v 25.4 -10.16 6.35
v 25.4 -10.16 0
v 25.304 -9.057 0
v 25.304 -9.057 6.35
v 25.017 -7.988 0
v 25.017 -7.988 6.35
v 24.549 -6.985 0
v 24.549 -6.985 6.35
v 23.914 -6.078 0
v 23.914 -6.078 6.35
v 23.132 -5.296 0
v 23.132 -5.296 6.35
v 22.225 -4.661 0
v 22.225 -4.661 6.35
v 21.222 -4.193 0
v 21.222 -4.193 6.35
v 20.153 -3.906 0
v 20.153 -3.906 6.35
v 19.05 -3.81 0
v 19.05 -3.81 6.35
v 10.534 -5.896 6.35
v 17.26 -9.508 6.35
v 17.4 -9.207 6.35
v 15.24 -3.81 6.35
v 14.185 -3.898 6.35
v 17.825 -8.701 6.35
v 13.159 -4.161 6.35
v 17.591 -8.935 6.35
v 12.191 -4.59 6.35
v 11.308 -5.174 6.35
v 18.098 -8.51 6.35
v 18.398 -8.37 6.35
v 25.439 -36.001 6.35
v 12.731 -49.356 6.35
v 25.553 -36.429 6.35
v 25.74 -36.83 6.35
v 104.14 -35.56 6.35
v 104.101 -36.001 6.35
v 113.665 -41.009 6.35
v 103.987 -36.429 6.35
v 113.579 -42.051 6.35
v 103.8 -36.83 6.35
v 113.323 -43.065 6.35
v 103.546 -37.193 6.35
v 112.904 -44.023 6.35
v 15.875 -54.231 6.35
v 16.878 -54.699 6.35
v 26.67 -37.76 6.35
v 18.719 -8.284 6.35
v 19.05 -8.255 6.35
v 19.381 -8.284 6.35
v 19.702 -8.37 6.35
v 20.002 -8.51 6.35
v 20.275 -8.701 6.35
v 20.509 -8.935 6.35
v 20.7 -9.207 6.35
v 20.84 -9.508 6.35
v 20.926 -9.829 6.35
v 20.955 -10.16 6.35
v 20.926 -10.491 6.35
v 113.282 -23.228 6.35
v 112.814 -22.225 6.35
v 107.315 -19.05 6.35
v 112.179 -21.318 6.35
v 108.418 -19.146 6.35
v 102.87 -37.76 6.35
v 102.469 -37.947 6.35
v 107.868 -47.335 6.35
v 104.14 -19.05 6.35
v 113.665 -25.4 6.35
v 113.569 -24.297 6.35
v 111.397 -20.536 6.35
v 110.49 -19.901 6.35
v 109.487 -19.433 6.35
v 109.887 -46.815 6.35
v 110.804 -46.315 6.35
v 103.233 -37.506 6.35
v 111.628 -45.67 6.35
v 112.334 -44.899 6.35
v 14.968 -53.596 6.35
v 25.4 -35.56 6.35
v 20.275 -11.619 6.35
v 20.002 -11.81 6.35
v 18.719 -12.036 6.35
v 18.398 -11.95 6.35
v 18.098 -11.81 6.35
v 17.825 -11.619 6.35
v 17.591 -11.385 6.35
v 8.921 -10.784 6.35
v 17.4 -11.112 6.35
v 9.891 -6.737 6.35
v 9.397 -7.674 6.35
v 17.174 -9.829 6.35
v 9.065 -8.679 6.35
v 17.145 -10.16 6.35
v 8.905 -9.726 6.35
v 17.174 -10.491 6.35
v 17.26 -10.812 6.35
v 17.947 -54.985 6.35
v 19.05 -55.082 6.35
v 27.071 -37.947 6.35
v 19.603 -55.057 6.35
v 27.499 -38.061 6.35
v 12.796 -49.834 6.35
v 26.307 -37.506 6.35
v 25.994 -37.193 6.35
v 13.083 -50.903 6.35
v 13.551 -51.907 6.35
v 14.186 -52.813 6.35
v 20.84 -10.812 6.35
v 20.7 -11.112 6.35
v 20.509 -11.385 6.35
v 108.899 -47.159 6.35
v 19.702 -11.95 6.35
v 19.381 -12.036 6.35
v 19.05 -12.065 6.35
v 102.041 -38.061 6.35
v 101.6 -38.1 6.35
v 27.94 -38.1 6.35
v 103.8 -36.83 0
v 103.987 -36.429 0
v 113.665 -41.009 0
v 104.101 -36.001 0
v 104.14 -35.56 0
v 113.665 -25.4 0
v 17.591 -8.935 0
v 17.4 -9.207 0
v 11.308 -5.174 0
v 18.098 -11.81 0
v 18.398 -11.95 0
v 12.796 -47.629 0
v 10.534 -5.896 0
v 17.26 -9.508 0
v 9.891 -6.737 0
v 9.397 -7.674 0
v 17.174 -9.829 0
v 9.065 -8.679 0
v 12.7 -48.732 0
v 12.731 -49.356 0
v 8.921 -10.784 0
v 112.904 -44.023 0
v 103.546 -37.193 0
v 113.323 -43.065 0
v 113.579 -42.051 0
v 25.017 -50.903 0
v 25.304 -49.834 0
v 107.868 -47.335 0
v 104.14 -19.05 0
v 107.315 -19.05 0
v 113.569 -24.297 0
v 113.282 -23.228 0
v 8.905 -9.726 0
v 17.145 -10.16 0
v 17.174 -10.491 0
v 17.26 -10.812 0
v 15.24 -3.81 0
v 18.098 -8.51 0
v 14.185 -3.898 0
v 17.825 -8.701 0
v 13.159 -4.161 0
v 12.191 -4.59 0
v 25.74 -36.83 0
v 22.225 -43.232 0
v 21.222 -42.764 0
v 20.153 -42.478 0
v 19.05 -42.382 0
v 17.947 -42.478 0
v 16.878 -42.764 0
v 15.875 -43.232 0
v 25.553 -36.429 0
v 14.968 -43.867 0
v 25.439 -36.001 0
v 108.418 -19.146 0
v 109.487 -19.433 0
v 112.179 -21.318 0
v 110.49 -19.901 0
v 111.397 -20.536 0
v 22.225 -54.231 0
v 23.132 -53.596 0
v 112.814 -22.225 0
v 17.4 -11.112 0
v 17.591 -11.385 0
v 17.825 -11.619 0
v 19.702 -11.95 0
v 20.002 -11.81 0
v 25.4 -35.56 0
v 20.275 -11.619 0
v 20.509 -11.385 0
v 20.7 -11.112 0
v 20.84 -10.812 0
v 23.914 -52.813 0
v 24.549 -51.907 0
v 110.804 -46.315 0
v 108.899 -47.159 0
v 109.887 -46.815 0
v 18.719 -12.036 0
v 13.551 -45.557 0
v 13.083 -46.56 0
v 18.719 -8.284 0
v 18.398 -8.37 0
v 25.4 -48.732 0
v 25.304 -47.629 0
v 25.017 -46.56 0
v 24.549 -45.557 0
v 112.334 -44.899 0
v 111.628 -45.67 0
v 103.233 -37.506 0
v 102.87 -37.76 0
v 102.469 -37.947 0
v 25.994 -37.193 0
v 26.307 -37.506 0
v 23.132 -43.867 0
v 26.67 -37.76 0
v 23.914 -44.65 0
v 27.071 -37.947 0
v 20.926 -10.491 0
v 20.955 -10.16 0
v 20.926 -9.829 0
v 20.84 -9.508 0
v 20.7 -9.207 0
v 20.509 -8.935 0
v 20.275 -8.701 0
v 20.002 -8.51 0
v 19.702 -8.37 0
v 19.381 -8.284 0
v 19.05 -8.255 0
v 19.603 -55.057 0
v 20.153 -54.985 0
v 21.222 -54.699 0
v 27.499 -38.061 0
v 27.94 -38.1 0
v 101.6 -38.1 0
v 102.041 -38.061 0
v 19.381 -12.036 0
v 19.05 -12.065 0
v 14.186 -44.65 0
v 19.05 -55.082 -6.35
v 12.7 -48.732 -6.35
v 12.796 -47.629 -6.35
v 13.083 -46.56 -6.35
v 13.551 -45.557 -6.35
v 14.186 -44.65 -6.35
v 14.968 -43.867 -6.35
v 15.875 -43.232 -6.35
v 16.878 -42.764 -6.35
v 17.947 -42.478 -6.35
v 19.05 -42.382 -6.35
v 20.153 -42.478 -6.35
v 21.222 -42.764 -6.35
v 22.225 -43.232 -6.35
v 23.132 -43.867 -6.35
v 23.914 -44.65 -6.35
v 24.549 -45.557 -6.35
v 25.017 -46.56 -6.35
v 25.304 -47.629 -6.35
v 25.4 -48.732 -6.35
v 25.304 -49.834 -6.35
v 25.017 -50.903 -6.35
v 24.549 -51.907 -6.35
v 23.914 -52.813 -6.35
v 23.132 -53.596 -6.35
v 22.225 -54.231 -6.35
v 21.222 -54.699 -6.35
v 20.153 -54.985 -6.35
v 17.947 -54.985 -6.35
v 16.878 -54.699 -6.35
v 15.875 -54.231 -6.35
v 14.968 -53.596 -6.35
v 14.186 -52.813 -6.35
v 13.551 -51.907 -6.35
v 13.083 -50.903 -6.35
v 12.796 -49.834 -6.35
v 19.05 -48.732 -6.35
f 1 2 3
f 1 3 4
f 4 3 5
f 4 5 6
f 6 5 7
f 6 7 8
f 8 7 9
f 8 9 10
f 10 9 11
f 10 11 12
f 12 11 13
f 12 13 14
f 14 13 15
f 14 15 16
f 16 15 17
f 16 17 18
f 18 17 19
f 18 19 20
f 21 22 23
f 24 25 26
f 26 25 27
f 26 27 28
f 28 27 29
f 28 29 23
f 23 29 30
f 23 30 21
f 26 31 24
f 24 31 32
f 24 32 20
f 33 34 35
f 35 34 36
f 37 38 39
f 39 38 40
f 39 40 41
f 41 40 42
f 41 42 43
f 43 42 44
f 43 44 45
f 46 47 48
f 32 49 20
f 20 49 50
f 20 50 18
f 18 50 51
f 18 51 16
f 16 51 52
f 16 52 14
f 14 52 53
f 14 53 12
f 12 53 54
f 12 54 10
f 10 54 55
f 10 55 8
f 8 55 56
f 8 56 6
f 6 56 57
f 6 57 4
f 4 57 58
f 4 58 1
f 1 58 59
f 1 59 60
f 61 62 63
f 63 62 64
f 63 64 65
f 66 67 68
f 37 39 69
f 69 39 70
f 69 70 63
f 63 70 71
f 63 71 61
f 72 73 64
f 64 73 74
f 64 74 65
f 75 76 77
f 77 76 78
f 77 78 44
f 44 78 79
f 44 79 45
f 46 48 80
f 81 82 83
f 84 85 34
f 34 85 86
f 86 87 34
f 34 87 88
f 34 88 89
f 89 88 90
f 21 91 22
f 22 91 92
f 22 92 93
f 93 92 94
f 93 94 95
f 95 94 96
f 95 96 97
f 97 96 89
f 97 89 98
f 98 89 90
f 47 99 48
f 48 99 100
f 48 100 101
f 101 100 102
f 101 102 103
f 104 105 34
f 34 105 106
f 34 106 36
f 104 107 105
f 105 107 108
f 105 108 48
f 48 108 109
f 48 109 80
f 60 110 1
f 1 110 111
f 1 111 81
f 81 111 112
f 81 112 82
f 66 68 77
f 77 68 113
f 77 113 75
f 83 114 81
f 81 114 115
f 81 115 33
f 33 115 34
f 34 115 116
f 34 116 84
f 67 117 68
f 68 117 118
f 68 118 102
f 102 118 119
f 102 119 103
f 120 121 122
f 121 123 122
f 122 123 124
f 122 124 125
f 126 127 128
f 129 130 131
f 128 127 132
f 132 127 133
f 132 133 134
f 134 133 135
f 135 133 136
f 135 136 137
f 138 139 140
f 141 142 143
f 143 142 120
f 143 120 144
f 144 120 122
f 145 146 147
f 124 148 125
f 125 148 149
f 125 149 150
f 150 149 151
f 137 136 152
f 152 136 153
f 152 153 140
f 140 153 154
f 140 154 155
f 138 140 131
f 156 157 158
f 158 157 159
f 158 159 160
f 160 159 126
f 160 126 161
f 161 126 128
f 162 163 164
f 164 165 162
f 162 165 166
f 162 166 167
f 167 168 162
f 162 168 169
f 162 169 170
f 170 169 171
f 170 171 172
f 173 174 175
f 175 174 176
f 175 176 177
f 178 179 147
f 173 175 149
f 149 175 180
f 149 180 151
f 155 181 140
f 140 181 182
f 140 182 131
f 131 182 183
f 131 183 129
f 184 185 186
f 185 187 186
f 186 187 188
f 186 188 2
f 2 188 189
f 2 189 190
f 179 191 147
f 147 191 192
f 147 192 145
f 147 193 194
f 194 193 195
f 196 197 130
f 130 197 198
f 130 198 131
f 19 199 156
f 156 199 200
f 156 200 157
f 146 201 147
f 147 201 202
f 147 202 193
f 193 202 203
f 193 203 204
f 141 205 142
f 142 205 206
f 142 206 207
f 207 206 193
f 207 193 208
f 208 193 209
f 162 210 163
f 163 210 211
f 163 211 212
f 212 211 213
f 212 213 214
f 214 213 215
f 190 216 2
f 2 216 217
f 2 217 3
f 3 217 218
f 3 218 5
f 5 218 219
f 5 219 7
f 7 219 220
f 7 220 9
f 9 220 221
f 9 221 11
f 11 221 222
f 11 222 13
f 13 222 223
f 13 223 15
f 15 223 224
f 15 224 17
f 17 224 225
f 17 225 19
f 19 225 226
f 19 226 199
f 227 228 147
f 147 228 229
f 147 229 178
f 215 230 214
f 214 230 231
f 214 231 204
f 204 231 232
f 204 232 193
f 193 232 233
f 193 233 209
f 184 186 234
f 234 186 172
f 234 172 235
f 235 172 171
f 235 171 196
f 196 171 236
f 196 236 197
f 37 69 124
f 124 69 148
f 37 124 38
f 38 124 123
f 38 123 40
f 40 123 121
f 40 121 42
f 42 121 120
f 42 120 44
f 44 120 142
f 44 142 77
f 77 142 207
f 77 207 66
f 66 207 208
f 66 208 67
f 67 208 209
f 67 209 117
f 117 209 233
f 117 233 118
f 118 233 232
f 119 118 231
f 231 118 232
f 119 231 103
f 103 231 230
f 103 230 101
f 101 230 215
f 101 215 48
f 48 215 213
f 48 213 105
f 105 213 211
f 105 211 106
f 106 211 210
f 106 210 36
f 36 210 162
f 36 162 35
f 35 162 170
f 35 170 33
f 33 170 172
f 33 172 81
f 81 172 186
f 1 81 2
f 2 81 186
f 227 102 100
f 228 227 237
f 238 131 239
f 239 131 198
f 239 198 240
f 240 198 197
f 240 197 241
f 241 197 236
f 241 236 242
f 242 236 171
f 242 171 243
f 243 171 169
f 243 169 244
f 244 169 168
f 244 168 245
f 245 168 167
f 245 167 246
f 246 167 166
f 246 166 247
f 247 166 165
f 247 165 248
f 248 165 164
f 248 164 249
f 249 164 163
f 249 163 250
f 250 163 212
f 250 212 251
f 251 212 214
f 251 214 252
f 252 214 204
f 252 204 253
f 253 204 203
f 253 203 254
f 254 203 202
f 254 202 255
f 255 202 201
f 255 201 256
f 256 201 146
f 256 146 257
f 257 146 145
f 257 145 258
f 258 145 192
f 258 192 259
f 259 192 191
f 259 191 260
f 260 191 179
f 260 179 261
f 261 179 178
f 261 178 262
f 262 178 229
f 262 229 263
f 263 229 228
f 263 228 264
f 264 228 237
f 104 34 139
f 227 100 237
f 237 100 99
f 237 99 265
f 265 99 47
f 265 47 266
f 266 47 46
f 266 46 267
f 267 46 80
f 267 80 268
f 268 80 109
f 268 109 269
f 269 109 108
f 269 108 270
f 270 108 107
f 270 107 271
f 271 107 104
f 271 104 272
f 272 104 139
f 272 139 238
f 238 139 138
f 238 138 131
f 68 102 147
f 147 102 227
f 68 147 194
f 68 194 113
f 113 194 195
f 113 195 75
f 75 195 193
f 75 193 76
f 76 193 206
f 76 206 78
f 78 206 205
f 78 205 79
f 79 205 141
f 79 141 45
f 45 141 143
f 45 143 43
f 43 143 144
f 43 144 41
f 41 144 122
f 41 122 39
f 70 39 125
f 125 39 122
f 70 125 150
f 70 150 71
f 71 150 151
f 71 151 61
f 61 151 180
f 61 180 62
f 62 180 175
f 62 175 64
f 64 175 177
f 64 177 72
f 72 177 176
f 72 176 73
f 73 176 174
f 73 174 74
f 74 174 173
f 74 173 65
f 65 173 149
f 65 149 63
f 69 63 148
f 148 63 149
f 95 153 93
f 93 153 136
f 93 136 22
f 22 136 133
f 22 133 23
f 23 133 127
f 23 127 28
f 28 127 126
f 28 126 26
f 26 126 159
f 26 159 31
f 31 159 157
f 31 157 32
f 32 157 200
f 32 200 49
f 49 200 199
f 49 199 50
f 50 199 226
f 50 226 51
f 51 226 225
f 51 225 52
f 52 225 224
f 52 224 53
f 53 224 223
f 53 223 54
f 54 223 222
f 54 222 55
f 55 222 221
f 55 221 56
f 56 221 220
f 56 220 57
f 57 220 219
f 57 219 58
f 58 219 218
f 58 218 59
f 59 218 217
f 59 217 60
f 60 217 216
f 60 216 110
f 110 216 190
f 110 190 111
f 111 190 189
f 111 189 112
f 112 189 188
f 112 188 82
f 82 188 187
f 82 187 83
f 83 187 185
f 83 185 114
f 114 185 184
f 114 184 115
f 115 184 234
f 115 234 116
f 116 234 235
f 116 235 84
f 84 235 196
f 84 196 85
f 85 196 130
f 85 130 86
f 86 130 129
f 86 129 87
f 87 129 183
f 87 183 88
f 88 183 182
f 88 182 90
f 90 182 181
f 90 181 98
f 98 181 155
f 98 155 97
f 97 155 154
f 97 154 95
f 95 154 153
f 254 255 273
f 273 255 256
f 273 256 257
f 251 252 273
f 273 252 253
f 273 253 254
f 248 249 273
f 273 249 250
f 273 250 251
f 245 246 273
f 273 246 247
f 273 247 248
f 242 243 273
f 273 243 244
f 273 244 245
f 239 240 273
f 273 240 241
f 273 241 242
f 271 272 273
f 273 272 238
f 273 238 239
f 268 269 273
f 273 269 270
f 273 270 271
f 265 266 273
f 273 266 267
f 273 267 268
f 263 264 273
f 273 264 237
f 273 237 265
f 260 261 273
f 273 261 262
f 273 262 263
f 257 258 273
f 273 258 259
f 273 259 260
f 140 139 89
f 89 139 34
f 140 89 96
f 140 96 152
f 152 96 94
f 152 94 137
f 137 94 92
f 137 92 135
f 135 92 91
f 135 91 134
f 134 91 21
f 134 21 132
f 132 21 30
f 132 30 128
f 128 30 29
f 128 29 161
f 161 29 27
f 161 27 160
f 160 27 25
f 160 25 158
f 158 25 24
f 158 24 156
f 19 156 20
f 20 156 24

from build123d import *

# Parameters (mm, degrees)
SKETCH1_R           = 1.905
BOSS_EXTRUDE1_DEPTH = 6.35
SKETCH3_R           = 6.35
BOSS_EXTRUDE2_DEPTH = 12.7
BOSS_EXTRUDE3_DEPTH = 6.35


with BuildPart() as part:
    # Sketch1 → Boss-Extrude1 (new body)
    with BuildSketch(Plane.XY):
        with BuildLine():
            Line((12.7, -10.16), (12.7, -48.731538364))
            ThreePointArc((12.7, -48.731538364), (14.760002182, -53.413249452), (19.603438966, -55.057374697))
            Line((19.603438966, -55.057374697), (107.868438966, -47.33518781))
            ThreePointArc((107.868438966, -47.33518781), (111.996711089, -45.299349296), (113.665, -41.009351478))
            Line((113.665, -41.009351478), (113.665, -25.4))
            ThreePointArc((113.665, -25.4), (111.805128061, -20.909871939), (107.315, -19.05))
            Line((107.315, -19.05), (104.14, -19.05))
            Line((104.14, -19.05), (104.14, -35.56))
            ThreePointArc((104.14, -35.56), (103.396051224, -37.356051224), (101.6, -38.1))
            Line((101.6, -38.1), (27.94, -38.1))
            ThreePointArc((27.94, -38.1), (26.143948776, -37.356051224), (25.4, -35.56))
            Line((25.4, -35.56), (25.4, -10.16))
            ThreePointArc((25.4, -10.16), (23.540128061, -5.669871939), (19.05, -3.81))
            ThreePointArc((19.05, -3.81), (14.559871939, -5.669871939), (12.7, -10.16))
        make_face()
        with Locations((19.05, -10.16)):
            Circle(SKETCH1_R, mode=Mode.SUBTRACT)
    extrude(amount=BOSS_EXTRUDE1_DEPTH)

    # Sketch3 → Boss-Extrude2 (add)
    with BuildSketch(Plane.XY.offset(6.35)):
        with Locations(Location((19.05, -48.731538364, 0), (0, 0, 180))):
            Circle(SKETCH3_R)
    extrude(amount=-BOSS_EXTRUDE2_DEPTH)

    # Sketch6 → Boss-Extrude3 (add)
    with BuildSketch(Plane.XY.offset(6.35)):
        with BuildLine():
            Line((12.730753591, -49.355737704), (8.920753591, -10.784199341))
            ThreePointArc((8.920753591, -10.784199341), (10.534356271, -5.896267235), (15.24, -3.81))
            Line((15.24, -3.81), (19.05, -3.81))
            ThreePointArc((19.05, -3.81), (14.559871939, -5.669871939), (12.7, -10.16))
            Line((12.7, -10.16), (12.7, -48.731538364))
            ThreePointArc((12.7, -48.731538364), (12.707693058, -49.044016603), (12.730753591, -49.355737704))
        make_face()
    extrude(amount=-BOSS_EXTRUDE3_DEPTH)


solid = part.part
